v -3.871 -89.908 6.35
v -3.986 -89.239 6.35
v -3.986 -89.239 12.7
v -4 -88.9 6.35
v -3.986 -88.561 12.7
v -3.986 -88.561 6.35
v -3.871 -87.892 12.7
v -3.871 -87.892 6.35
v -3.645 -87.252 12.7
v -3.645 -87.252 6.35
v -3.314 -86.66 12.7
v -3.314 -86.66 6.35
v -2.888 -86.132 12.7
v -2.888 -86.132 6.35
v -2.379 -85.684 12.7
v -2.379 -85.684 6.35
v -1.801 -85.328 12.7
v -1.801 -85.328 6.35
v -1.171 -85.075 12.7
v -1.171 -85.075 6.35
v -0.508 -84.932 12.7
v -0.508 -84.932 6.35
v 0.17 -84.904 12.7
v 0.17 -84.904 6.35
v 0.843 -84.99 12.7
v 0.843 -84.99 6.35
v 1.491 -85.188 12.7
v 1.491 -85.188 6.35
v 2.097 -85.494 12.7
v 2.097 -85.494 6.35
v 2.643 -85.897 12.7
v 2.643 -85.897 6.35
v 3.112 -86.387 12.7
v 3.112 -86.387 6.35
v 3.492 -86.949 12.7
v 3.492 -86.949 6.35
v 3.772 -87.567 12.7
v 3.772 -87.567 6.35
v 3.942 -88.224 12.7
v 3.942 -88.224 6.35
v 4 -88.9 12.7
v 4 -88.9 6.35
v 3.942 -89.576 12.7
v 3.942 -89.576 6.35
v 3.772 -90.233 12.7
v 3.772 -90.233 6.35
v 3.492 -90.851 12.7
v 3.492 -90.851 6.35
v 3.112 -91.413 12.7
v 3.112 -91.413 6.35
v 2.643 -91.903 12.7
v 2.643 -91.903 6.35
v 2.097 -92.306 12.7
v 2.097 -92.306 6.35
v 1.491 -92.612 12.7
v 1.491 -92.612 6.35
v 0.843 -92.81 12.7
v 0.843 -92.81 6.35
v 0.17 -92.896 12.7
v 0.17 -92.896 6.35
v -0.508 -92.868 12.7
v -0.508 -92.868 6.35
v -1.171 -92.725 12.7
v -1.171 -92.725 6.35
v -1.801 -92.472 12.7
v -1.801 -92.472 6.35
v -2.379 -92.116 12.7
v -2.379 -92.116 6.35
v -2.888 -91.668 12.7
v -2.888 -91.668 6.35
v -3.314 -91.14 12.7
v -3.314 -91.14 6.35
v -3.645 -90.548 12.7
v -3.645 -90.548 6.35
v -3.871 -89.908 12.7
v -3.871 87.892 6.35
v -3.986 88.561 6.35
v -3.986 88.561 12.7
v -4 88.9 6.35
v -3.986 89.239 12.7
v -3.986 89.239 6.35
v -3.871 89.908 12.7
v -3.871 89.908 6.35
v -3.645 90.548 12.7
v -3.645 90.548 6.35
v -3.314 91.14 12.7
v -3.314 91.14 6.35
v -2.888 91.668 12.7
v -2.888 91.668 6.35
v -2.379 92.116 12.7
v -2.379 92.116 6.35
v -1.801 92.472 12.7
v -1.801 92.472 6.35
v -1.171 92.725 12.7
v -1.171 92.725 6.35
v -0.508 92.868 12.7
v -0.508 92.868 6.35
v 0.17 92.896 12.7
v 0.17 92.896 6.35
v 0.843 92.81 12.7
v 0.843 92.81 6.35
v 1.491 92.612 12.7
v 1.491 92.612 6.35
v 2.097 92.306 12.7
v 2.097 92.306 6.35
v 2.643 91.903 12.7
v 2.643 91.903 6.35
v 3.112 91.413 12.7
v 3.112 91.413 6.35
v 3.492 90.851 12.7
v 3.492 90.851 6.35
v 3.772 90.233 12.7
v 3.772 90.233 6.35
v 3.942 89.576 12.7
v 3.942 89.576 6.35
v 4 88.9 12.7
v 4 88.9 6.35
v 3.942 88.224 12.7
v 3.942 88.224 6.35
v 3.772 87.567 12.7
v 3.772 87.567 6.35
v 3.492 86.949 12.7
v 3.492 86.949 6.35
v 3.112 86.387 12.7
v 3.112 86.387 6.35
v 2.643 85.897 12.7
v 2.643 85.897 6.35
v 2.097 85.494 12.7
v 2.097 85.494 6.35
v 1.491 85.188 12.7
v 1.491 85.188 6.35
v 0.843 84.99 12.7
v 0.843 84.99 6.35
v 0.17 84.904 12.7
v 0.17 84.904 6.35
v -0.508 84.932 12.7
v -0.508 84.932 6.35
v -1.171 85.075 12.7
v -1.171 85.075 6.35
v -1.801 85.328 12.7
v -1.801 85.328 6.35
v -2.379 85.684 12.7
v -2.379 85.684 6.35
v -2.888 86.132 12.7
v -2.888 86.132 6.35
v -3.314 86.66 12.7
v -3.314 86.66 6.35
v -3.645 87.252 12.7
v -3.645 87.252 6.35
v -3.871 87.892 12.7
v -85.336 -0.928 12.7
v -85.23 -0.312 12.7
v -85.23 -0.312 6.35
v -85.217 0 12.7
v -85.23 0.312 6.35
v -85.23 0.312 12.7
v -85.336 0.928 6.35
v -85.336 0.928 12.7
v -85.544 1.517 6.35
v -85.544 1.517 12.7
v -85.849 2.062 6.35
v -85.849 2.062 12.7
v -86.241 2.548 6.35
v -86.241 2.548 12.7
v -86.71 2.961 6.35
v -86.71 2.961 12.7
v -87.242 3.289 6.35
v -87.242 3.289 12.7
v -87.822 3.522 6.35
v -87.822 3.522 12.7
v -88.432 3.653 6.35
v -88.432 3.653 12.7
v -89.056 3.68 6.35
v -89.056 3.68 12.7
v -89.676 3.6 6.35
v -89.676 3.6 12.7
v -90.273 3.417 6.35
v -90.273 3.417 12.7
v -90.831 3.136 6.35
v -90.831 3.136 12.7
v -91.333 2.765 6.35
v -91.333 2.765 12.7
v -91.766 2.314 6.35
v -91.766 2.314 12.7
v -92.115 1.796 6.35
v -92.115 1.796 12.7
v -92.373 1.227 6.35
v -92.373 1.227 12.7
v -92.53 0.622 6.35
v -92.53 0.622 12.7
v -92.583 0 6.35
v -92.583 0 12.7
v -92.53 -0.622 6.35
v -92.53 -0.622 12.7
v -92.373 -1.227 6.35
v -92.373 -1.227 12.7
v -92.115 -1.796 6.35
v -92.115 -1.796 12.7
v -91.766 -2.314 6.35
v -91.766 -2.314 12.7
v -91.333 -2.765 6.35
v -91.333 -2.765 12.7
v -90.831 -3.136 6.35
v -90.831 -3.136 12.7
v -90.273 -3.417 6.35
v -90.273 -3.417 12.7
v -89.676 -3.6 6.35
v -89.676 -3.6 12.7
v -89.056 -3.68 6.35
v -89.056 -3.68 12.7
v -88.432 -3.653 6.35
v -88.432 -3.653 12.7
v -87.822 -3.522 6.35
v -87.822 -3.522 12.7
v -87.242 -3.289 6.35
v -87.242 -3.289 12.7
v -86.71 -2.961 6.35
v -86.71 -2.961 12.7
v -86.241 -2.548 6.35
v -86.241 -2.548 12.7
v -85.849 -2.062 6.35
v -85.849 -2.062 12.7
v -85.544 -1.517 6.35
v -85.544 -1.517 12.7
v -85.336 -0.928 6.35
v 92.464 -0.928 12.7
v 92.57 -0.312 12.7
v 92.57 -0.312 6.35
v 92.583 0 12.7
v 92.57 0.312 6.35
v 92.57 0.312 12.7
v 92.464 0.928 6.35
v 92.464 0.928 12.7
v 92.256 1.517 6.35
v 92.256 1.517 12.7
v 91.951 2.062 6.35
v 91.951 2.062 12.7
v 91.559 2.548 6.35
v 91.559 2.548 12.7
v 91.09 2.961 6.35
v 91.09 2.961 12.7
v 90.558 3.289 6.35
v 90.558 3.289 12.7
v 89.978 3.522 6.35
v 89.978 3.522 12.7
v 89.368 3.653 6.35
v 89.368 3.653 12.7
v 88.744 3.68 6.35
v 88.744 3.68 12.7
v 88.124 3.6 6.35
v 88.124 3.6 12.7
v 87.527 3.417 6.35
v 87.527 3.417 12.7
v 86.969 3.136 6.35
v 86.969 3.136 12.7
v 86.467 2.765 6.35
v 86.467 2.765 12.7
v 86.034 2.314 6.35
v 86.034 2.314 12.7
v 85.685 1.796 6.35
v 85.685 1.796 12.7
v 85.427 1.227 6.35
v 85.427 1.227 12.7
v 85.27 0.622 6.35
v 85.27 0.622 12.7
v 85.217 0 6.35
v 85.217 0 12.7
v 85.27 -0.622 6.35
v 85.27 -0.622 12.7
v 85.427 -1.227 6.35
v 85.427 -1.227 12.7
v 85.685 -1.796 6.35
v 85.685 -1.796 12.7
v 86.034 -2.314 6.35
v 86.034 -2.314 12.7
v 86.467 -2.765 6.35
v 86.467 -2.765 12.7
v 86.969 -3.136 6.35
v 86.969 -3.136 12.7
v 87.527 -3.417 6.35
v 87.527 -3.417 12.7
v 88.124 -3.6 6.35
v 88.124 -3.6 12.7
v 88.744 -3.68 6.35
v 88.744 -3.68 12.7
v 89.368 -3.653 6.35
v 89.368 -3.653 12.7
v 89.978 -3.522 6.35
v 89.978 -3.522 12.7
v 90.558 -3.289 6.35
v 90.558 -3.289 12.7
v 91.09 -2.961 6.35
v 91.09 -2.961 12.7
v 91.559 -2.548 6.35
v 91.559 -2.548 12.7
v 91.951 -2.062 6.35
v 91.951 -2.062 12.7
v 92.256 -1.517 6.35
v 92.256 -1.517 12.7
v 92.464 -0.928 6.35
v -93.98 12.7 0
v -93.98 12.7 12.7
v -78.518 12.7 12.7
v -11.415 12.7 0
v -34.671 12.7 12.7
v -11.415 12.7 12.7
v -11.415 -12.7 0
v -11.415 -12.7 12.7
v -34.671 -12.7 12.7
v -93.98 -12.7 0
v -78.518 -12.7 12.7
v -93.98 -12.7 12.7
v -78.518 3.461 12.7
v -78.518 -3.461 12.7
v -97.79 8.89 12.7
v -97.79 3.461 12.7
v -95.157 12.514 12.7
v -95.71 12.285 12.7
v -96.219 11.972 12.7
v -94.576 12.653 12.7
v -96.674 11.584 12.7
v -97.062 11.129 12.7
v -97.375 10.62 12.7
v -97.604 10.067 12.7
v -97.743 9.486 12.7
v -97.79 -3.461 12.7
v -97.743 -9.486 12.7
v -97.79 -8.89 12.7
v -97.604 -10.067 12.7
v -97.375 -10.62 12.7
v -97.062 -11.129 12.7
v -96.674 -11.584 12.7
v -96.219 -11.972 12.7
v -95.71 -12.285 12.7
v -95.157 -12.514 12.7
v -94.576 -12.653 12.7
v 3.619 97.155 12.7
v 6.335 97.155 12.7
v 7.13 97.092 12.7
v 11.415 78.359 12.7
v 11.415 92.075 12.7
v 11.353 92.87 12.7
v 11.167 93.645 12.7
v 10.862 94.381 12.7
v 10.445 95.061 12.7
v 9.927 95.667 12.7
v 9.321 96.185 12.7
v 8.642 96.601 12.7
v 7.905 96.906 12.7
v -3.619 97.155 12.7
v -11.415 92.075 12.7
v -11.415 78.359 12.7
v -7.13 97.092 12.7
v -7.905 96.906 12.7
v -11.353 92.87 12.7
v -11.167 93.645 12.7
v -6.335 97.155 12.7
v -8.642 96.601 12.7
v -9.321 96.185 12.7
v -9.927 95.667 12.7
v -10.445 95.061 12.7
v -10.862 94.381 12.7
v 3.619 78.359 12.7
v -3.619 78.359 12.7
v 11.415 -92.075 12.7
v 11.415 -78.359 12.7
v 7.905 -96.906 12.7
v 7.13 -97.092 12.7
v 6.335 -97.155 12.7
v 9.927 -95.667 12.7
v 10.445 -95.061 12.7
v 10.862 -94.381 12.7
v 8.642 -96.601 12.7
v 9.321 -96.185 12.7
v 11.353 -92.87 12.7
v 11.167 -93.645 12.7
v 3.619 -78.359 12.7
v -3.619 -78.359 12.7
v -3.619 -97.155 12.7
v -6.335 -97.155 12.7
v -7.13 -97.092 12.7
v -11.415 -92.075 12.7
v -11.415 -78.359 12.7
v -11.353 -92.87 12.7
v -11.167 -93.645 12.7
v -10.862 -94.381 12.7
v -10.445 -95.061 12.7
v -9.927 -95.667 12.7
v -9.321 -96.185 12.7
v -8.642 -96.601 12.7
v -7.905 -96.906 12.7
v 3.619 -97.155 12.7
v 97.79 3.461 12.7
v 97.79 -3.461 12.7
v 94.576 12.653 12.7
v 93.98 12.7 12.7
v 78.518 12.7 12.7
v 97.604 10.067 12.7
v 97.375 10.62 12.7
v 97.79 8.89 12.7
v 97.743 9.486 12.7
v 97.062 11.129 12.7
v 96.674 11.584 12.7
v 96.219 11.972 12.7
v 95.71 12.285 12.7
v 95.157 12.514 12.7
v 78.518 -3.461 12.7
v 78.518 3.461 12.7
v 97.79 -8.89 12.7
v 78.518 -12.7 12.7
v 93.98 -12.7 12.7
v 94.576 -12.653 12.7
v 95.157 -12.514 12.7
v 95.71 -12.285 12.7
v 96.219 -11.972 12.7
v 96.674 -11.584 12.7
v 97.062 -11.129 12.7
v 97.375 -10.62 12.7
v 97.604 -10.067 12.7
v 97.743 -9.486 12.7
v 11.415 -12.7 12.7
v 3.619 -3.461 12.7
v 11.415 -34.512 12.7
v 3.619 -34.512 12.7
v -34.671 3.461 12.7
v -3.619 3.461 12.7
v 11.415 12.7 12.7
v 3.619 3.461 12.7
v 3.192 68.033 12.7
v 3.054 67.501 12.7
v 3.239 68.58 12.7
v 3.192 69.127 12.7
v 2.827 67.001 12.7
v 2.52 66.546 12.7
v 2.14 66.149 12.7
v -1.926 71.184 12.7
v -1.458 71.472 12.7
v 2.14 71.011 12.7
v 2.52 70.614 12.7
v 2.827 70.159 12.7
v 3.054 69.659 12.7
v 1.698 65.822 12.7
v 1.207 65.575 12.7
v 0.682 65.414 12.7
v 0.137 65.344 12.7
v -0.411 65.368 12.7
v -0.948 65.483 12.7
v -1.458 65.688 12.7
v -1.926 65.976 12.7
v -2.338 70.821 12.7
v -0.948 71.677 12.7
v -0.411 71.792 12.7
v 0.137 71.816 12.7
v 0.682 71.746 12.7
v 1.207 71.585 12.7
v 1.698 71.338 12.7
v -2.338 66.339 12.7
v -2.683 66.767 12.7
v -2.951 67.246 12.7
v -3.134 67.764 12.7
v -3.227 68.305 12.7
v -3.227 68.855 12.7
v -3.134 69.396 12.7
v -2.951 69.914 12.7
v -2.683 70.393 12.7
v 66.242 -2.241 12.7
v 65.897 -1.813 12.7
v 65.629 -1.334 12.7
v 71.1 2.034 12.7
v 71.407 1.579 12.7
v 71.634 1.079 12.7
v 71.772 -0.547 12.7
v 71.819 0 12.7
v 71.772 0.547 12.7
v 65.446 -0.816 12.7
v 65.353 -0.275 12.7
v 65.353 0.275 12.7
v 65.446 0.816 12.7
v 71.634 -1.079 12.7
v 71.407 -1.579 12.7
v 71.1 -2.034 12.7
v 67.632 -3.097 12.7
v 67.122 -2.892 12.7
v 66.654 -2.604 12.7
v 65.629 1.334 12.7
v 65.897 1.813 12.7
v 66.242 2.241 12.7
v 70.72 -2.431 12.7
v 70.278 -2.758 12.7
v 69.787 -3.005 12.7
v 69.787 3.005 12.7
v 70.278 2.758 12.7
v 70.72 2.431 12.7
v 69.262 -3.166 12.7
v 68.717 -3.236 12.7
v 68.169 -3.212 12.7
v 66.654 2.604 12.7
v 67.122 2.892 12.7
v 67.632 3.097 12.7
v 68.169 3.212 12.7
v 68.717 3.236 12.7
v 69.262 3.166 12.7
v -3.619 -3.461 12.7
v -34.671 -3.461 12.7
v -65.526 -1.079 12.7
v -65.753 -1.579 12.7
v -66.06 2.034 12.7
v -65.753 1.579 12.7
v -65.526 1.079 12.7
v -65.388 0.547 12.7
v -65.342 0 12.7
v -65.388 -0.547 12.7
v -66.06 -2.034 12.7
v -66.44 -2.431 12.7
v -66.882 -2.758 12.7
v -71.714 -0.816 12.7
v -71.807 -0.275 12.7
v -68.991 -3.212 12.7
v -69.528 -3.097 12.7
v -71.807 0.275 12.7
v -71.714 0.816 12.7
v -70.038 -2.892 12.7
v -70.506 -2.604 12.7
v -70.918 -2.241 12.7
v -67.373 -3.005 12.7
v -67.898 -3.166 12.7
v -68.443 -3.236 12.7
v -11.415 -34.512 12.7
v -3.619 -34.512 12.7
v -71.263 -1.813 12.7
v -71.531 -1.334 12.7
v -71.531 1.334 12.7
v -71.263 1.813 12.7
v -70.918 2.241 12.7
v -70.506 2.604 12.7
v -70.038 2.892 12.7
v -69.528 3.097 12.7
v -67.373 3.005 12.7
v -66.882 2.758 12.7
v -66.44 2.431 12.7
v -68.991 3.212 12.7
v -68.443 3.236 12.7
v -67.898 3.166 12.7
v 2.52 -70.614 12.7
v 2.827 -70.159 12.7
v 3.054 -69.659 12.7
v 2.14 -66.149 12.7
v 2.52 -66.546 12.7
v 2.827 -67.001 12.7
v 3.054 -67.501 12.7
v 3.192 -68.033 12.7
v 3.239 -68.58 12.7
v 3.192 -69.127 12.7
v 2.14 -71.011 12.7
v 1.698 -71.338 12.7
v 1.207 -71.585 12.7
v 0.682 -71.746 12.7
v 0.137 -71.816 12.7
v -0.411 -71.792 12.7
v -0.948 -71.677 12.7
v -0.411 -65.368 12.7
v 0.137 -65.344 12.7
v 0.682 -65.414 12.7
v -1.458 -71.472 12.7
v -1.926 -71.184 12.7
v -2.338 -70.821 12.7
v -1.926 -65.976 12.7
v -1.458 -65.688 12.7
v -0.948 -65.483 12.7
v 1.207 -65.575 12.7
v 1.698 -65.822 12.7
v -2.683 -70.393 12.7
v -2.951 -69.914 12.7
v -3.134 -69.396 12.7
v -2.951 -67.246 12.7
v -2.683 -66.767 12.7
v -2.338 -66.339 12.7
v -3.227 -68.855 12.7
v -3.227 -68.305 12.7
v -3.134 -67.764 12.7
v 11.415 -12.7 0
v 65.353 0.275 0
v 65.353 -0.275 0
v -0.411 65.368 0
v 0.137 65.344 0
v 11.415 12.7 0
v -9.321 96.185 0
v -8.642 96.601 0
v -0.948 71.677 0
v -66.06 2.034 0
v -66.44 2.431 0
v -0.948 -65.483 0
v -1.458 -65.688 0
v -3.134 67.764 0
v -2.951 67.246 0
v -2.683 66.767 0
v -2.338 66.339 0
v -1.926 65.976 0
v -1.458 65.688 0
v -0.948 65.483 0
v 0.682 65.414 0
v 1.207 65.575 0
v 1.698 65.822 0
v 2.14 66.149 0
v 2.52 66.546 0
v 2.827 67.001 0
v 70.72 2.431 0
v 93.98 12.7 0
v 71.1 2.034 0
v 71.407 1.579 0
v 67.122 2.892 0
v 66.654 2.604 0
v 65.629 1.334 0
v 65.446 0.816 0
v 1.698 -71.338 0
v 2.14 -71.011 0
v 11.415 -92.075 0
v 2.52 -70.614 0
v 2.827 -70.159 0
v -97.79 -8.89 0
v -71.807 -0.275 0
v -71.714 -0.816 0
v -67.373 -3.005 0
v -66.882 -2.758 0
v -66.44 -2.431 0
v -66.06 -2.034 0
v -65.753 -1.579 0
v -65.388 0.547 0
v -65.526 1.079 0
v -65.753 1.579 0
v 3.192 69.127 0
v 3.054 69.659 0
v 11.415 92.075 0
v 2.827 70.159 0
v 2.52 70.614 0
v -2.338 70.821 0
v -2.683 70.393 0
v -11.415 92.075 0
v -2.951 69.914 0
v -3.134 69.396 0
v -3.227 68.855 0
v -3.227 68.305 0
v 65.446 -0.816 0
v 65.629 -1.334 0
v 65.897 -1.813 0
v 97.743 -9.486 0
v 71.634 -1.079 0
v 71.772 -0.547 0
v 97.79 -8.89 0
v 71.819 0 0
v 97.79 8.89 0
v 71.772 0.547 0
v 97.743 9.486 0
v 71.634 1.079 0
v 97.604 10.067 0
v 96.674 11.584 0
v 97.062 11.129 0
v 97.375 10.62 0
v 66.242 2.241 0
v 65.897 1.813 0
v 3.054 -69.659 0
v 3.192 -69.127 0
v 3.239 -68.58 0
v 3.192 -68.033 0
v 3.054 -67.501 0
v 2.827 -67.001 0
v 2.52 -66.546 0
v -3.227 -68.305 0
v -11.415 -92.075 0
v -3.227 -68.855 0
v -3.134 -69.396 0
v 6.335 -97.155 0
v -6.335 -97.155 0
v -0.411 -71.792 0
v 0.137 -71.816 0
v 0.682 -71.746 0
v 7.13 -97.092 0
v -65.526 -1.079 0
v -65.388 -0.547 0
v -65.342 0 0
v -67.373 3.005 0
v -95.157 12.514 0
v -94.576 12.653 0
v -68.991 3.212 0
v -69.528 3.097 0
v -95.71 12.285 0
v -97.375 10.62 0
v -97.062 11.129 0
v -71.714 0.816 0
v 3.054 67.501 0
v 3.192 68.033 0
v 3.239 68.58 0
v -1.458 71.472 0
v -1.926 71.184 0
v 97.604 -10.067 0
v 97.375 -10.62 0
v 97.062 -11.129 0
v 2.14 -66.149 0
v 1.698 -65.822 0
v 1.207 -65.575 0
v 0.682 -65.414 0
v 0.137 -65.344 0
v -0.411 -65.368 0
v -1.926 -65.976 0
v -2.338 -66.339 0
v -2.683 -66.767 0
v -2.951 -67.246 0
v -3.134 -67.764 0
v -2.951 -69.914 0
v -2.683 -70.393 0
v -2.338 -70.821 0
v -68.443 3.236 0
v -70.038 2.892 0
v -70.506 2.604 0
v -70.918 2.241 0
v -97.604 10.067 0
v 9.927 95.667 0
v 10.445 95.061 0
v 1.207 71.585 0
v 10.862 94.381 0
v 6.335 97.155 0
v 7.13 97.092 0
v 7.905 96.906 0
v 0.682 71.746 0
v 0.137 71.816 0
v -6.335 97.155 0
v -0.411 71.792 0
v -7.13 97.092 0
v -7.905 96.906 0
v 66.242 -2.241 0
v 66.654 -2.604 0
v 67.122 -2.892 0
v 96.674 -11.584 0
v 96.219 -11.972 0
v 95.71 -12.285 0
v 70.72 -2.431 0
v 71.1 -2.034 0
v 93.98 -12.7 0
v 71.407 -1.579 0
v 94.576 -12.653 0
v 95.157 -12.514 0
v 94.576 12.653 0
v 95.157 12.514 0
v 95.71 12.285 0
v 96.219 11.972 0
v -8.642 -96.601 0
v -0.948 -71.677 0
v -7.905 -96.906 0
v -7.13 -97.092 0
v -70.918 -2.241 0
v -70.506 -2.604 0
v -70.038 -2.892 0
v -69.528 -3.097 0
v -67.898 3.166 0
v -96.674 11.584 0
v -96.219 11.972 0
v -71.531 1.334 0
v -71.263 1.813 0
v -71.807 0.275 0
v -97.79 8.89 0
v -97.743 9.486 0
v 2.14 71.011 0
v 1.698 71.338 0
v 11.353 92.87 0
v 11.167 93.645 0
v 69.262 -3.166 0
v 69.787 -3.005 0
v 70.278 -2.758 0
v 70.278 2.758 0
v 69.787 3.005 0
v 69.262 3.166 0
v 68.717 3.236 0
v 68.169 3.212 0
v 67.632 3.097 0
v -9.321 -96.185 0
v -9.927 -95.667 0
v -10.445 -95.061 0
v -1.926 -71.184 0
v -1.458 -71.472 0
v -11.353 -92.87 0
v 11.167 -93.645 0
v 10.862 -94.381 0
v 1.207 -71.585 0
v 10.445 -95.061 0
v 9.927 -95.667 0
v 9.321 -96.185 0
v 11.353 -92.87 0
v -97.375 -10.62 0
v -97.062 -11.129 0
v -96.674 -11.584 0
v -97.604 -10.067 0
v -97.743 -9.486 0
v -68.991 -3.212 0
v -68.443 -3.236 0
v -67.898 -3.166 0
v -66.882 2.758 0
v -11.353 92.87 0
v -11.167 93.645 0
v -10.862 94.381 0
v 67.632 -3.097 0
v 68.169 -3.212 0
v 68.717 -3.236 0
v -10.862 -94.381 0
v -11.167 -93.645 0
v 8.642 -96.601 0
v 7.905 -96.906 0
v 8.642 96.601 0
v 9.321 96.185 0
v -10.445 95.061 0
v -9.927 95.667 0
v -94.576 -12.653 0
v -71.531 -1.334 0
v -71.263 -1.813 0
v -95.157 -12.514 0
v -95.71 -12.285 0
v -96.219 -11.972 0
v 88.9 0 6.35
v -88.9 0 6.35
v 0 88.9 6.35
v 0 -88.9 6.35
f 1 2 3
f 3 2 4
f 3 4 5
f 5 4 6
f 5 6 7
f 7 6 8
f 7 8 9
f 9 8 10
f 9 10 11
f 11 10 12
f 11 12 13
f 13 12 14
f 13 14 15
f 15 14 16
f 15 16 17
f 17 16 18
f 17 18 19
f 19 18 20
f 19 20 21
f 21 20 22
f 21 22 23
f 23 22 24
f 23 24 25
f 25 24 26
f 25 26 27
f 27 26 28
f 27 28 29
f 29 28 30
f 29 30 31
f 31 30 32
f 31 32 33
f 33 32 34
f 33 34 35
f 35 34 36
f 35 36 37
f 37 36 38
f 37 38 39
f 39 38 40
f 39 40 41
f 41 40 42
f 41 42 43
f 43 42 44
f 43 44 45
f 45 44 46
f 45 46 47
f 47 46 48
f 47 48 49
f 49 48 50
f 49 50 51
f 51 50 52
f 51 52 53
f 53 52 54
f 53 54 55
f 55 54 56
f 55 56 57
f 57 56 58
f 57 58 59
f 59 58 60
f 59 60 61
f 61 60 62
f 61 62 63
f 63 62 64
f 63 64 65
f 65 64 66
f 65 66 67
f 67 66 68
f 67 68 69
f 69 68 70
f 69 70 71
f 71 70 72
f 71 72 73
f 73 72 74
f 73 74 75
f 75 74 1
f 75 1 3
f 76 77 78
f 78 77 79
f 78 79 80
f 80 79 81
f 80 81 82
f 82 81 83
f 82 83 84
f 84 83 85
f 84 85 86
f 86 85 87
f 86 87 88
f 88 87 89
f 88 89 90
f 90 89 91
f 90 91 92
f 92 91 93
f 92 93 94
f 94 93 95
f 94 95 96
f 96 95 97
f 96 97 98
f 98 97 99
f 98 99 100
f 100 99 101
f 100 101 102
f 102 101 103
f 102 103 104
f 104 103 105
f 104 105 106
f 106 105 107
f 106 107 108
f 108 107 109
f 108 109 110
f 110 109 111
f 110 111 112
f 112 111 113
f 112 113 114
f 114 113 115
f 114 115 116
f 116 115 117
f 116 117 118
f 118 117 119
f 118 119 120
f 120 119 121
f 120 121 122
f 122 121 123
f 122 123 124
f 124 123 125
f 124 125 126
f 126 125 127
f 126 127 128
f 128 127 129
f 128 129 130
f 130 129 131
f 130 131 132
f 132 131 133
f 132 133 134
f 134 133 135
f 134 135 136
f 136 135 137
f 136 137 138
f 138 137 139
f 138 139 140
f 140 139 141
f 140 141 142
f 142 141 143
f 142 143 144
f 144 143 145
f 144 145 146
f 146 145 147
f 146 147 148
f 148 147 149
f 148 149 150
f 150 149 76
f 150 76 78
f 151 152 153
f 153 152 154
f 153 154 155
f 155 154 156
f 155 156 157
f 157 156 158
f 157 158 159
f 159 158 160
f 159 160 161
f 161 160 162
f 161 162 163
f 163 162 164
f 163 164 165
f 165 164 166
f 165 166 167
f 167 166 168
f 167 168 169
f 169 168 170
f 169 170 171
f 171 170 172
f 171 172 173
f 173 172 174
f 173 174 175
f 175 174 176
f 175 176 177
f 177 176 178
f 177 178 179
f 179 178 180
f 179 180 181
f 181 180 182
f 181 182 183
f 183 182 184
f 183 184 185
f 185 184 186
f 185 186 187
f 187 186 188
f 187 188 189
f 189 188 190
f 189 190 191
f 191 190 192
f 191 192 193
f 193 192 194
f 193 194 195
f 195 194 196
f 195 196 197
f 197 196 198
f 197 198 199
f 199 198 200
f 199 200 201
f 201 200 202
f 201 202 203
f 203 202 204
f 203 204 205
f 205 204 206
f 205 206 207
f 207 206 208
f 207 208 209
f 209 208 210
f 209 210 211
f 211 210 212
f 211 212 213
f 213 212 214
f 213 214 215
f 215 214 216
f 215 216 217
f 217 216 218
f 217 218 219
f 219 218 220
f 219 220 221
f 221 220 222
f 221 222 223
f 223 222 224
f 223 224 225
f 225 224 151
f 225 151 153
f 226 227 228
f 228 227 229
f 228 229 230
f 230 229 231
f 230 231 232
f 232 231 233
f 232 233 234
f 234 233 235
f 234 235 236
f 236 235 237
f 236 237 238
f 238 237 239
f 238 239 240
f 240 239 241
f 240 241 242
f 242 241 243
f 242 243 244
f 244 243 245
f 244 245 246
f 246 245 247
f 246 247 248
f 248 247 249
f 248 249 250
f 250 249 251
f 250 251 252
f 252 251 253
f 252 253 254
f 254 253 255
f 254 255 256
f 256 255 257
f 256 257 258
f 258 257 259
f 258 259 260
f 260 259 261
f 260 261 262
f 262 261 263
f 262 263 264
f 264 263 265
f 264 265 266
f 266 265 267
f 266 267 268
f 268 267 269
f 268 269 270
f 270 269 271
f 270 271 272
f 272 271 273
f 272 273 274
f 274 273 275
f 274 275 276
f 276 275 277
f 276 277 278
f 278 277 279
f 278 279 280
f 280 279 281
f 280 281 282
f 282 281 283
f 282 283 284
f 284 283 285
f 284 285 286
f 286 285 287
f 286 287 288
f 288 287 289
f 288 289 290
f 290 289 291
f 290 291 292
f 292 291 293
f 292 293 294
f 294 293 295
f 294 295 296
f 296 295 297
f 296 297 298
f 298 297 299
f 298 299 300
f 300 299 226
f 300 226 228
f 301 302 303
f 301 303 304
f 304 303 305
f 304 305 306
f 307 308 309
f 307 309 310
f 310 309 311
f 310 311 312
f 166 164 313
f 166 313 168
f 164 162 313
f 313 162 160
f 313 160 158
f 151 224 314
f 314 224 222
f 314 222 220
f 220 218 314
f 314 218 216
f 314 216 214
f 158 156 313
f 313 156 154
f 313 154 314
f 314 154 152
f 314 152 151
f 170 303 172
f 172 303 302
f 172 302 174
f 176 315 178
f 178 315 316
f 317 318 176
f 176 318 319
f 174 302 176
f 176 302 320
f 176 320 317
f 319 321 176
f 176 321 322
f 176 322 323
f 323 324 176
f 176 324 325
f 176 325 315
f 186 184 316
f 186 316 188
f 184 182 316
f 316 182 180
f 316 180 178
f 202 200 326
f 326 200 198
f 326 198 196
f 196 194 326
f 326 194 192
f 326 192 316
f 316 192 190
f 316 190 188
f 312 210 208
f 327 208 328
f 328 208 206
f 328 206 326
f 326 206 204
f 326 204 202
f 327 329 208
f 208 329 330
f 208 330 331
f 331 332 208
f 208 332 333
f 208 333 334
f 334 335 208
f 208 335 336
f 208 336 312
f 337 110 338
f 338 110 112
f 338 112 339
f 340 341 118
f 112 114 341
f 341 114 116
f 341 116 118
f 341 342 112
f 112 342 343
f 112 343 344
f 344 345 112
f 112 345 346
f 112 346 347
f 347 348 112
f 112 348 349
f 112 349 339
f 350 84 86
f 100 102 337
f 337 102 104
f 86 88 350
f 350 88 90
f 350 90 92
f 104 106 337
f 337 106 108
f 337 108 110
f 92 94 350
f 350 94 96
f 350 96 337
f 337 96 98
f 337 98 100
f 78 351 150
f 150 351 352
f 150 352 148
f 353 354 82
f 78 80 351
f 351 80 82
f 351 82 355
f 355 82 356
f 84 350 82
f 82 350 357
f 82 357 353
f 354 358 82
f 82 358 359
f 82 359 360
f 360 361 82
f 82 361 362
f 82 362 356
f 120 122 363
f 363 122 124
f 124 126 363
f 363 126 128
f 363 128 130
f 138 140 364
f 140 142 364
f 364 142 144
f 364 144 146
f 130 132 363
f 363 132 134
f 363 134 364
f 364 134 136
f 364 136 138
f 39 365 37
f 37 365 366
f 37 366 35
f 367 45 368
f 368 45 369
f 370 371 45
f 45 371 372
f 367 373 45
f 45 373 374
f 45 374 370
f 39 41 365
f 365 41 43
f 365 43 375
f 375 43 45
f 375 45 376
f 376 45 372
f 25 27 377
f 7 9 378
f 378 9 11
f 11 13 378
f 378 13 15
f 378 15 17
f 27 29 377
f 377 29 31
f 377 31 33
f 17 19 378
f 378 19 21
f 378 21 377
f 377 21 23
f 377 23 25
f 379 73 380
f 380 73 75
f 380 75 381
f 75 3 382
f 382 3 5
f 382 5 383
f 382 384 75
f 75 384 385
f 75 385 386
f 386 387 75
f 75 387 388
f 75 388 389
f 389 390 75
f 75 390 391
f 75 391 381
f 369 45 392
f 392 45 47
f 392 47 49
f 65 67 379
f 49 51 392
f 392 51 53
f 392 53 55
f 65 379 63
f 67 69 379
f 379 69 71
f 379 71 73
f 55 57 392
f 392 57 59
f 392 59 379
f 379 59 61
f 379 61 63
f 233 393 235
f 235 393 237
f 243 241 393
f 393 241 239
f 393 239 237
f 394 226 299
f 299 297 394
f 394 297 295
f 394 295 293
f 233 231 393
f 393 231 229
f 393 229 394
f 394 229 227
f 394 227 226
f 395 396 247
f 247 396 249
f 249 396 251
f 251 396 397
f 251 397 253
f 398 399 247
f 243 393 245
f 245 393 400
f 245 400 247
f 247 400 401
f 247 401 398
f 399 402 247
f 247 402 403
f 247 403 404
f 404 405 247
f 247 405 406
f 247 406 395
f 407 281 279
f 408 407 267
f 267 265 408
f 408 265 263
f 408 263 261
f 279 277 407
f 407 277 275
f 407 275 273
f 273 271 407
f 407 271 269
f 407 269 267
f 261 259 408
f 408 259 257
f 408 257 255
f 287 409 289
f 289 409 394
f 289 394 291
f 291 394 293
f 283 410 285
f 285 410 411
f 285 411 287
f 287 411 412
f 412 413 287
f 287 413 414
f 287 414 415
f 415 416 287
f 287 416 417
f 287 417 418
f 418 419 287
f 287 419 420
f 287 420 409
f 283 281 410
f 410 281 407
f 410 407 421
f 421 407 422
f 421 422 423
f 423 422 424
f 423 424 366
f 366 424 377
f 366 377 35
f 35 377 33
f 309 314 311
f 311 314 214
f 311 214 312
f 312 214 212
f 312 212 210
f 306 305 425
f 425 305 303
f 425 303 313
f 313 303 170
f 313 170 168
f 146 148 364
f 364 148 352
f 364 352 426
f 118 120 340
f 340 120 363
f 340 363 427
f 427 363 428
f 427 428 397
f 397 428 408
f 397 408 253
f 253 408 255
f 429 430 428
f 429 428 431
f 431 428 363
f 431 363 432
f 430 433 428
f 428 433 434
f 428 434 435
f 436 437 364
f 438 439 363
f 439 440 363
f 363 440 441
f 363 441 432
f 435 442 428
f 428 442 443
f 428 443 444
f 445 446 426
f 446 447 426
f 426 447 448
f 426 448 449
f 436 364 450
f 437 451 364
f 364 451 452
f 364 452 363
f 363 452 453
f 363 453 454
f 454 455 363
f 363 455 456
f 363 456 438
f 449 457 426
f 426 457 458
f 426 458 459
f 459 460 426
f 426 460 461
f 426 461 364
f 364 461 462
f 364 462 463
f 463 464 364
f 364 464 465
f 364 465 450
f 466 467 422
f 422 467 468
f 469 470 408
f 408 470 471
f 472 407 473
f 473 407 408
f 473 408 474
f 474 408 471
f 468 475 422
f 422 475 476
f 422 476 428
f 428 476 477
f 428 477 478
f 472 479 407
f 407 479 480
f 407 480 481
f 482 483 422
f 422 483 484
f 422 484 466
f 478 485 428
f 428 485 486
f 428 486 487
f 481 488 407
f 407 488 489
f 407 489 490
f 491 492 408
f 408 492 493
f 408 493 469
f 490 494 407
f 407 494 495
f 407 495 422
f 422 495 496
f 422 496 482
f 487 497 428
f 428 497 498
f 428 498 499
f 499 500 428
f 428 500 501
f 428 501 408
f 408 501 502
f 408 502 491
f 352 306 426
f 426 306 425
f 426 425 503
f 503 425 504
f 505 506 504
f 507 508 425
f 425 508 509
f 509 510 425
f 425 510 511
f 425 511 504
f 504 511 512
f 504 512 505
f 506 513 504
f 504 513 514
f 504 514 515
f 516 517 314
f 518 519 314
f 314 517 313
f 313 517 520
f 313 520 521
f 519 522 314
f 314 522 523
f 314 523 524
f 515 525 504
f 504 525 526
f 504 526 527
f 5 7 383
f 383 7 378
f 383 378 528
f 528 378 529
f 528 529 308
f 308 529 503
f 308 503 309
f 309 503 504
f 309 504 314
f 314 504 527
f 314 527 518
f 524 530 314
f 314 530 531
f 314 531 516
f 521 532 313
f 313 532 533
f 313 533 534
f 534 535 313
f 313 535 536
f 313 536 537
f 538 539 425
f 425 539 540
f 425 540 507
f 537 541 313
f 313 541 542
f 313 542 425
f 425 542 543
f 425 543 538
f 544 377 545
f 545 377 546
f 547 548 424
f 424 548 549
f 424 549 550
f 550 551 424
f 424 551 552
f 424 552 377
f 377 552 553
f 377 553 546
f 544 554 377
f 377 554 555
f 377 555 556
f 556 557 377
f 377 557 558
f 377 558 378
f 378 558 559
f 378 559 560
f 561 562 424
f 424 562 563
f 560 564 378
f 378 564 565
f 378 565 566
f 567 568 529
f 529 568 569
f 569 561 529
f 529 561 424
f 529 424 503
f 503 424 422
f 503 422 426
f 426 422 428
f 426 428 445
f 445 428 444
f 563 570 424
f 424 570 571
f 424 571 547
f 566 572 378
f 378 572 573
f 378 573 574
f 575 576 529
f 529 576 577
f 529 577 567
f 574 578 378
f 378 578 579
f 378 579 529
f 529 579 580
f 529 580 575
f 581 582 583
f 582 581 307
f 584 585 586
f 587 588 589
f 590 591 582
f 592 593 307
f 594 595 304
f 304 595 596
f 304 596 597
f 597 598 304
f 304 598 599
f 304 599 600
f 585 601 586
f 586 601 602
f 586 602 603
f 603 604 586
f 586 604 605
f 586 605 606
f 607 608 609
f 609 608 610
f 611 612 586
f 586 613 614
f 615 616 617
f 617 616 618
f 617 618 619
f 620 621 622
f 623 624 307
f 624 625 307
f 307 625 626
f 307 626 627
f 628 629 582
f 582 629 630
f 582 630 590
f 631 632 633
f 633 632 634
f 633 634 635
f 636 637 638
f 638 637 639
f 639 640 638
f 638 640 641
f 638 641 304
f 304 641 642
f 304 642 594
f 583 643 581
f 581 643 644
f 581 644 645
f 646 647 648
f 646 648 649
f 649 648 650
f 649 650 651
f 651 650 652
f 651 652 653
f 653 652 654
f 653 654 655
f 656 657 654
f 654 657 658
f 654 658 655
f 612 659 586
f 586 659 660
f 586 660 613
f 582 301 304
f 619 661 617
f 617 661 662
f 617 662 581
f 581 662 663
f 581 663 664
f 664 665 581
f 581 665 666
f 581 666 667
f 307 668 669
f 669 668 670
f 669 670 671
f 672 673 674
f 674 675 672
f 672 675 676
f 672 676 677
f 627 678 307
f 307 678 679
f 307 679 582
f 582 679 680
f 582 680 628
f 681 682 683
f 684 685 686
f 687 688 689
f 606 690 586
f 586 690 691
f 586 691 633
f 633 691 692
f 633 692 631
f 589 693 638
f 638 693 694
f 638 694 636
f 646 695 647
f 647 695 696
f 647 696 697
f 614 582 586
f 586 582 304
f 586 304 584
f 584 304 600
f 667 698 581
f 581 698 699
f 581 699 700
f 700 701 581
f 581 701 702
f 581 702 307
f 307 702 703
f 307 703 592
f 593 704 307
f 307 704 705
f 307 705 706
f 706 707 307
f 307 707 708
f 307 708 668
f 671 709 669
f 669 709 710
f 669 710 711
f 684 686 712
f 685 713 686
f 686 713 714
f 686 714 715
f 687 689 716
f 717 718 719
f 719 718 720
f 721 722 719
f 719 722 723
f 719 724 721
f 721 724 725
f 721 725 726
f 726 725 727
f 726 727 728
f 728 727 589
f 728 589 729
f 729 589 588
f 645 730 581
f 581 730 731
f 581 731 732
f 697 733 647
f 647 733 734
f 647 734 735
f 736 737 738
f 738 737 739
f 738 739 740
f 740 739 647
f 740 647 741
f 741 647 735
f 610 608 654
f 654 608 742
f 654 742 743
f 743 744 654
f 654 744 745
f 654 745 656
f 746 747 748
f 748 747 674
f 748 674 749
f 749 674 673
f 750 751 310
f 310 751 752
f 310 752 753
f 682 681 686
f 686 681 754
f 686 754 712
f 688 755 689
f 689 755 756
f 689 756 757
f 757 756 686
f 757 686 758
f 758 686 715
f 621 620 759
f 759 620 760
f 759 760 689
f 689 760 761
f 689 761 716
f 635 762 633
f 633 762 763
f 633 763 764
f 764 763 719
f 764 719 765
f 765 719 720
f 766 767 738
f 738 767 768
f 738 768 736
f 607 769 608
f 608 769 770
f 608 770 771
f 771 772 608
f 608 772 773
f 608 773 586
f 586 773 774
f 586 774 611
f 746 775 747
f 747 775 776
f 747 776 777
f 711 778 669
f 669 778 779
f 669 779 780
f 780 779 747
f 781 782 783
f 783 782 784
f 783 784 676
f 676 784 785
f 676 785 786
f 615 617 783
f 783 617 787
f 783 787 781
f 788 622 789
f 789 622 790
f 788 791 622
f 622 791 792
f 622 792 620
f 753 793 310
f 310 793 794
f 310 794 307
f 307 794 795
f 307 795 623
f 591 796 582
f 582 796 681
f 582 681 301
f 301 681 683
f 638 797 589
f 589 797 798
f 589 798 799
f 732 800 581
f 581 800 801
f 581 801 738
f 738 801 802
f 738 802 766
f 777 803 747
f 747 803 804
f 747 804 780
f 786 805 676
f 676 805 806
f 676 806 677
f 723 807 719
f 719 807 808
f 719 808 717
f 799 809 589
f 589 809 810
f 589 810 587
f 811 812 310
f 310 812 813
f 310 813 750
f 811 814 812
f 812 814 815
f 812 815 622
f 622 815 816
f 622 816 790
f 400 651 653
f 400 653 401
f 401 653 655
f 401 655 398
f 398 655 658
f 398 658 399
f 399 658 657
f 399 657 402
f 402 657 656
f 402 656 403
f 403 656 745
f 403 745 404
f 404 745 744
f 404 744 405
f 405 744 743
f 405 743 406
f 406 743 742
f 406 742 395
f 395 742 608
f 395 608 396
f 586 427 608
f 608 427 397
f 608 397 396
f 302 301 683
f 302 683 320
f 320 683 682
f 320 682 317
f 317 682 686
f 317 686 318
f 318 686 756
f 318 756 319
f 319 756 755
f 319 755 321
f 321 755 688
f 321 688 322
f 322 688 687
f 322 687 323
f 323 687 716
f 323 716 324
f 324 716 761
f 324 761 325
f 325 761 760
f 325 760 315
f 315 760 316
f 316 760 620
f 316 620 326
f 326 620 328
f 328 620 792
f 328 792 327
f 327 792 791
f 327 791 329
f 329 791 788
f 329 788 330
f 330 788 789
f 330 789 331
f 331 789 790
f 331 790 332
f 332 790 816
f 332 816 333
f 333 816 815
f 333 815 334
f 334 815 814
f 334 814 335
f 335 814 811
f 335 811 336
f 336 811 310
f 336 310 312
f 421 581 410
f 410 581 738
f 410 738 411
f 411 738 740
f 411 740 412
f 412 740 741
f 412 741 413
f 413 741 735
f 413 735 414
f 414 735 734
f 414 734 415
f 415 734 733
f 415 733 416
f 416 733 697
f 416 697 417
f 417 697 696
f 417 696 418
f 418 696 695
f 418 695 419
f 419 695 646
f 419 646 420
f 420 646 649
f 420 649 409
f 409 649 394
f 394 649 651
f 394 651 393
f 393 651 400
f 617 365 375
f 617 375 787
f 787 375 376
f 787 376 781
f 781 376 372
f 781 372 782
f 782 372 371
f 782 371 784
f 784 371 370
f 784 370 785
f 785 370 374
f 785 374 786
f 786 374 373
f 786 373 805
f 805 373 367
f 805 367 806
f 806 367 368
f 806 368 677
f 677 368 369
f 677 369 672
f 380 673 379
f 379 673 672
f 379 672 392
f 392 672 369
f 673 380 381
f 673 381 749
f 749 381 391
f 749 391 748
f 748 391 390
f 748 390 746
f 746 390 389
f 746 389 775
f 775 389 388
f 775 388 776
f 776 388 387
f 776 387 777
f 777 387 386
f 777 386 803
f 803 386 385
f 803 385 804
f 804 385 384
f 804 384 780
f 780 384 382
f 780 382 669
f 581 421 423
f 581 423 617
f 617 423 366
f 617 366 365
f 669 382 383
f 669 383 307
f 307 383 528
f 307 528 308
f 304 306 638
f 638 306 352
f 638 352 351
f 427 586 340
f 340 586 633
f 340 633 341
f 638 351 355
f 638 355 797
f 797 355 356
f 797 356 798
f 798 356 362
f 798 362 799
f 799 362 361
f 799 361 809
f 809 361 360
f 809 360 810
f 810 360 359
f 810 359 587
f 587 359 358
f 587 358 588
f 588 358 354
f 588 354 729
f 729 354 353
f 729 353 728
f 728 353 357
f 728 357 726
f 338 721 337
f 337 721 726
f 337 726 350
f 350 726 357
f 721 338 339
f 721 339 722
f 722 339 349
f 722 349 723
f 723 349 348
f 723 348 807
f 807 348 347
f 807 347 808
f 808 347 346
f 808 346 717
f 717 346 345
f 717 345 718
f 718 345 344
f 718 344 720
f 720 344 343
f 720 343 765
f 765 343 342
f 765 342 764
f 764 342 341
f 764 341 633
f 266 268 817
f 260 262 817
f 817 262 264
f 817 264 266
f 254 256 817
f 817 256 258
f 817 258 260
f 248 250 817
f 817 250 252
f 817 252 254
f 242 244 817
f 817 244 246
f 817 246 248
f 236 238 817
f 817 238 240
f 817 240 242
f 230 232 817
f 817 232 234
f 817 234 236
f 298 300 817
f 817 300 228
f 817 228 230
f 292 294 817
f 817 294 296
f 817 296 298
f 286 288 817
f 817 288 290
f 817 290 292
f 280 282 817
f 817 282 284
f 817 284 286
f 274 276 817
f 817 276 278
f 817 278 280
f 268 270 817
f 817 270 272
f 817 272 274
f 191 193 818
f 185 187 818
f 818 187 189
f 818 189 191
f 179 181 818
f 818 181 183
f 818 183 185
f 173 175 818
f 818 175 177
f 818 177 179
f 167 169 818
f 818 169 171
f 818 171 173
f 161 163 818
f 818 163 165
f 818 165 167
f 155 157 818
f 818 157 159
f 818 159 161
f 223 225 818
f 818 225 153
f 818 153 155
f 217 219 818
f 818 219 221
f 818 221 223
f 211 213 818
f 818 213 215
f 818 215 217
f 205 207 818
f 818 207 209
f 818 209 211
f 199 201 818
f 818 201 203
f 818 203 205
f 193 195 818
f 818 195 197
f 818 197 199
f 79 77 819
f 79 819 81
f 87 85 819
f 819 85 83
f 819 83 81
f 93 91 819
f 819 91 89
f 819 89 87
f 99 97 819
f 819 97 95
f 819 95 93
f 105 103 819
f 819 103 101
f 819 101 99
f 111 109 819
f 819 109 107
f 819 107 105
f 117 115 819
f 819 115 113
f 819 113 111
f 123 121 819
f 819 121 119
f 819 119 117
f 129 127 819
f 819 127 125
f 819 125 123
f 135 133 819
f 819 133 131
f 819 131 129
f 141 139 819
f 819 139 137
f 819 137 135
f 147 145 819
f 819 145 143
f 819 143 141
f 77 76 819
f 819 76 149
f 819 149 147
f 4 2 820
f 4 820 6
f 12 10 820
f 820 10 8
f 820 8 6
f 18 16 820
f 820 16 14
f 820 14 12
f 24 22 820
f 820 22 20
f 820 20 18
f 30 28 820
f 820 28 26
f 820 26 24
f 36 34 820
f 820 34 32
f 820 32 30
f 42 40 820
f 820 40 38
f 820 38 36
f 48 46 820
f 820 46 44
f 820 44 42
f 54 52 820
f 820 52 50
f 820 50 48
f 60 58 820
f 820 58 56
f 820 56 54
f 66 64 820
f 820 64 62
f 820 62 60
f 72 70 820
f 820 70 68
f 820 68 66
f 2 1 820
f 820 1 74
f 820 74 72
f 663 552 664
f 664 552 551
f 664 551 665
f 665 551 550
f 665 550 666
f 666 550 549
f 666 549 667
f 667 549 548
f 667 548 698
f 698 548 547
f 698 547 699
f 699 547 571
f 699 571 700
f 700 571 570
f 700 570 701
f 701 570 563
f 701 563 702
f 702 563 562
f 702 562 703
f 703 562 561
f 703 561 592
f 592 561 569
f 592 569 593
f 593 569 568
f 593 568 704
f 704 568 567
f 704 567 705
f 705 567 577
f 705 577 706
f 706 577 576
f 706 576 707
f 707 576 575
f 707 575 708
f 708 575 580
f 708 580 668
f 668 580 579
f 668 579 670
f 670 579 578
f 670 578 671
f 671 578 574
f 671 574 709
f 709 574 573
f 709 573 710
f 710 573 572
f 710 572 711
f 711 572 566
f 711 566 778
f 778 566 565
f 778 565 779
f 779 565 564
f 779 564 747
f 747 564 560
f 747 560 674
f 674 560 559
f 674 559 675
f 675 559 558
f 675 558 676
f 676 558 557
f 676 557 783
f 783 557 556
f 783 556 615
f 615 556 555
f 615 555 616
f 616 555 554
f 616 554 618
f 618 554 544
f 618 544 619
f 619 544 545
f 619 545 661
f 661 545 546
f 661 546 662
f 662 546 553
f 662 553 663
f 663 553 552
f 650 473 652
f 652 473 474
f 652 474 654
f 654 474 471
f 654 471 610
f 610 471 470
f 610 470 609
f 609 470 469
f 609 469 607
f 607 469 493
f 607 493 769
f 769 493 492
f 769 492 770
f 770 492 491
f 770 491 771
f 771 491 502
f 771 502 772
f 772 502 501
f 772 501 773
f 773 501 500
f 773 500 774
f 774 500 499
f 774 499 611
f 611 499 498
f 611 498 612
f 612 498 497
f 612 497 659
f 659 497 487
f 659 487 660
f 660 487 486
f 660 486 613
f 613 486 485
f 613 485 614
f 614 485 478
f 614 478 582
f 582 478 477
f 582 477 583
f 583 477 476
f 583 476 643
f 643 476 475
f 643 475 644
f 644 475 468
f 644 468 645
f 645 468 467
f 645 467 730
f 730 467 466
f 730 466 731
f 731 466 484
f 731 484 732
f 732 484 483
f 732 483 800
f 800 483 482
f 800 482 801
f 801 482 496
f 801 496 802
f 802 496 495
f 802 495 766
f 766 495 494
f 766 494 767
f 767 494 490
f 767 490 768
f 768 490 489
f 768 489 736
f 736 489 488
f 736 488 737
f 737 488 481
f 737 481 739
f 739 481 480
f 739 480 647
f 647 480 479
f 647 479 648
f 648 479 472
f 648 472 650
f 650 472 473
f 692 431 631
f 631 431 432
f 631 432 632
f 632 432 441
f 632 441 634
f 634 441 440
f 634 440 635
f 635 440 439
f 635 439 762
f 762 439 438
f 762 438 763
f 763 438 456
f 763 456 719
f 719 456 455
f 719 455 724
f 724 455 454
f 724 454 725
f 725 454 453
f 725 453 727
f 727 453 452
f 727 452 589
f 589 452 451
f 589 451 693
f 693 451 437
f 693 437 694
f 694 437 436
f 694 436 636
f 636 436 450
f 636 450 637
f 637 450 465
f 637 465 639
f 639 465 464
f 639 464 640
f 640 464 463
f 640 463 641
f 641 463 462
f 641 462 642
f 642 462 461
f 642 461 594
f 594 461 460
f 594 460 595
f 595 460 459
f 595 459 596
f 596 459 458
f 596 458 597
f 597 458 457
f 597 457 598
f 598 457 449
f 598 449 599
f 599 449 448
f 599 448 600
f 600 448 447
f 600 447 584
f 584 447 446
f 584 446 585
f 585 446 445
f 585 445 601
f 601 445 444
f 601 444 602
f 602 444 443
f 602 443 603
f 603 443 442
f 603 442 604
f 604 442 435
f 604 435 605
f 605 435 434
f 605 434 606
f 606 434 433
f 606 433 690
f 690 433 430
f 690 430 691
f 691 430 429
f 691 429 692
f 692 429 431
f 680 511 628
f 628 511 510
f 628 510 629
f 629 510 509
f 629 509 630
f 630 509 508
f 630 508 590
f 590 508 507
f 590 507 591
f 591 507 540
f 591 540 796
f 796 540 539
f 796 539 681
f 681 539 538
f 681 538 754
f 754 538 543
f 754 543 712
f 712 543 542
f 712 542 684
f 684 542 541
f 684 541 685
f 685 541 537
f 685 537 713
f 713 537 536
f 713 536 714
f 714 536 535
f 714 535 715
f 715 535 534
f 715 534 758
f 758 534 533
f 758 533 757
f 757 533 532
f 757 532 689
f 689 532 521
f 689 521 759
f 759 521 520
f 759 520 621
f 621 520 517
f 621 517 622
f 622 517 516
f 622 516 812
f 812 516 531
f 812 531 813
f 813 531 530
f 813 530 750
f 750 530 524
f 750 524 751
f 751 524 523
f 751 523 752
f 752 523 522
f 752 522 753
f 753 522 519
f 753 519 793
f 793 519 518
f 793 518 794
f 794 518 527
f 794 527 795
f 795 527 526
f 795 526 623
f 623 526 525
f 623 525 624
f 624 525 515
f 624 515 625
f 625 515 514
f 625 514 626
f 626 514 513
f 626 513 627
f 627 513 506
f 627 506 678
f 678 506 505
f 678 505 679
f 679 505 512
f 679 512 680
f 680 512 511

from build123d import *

# Parameters (mm, degrees)
SKETCH1_R           = 3.683
BOSS_EXTRUDE1_DEPTH = 12.7
SKETCH3_R           = 4
BOSS_EXTRUDE3_DEPTH = 12.7
SKETCH2_R           = 3.683
SKETCH2_R_2         = 4
BOSS_EXTRUDE2_DEPTH = 6.35
SKETCH4_R           = 3.2385
CUT_EXTRUDE1_DEPTH  = 139.431456414


with BuildPart() as part:
    # Sketch1 → Boss-Extrude1 (new body)
    with BuildSketch(Plane.XY):
        with BuildLine():
            Line((93.98, -12.7), (-93.98, -12.7))
            ThreePointArc((-93.98, -12.7), (-96.674076836, -11.584076836), (-97.79, -8.89))
            Line((-97.79, -8.89), (-97.79, 8.89))
            ThreePointArc((-97.79, 8.89), (-96.674076836, 11.584076836), (-93.98, 12.7))
            Line((-93.98, 12.7), (93.98, 12.7))
            ThreePointArc((93.98, 12.7), (96.674076836, 11.584076836), (97.79, 8.89))
            Line((97.79, 8.89), (97.79, -8.89))
            ThreePointArc((97.79, -8.89), (96.674076836, -11.584076836), (93.98, -12.7))
        make_face()
        with Locations((-88.9, 0)):
            Circle(SKETCH1_R, mode=Mode.SUBTRACT)
        with Locations((88.9, 0)):
            Circle(SKETCH1_R, mode=Mode.SUBTRACT)
    extrude(amount=BOSS_EXTRUDE1_DEPTH)

    # Sketch3 → Boss-Extrude3 (add, through all)
    with BuildSketch(Plane.XY.offset(12.7)):
        with BuildLine():
            Line((-6.335384206, -97.155), (6.335384206, -97.155))
            ThreePointArc((6.335384206, -97.155), (9.927486654, -95.667102448), (11.415384206, -92.075))
            Line((11.415384206, -92.075), (11.415384206, 92.075))
            ThreePointArc((11.415384206, 92.075), (9.927486654, 95.667102448), (6.335384206, 97.155))
            Line((6.335384206, 97.155), (-6.335384206, 97.155))
            ThreePointArc((-6.335384206, 97.155), (-9.927486654, 95.667102448), (-11.415384206, 92.075))
            Line((-11.415384206, 92.075), (-11.415384206, -92.075))
            ThreePointArc((-11.415384206, -92.075), (-9.927486654, -95.667102448), (-6.335384206, -97.155))
        make_face()
        with Locations((0, 88.9)):
            Circle(SKETCH3_R, mode=Mode.SUBTRACT)
        with Locations((0, -88.9)):
            Circle(SKETCH3_R, mode=Mode.SUBTRACT)
    extrude(amount=-BOSS_EXTRUDE3_DEPTH)

    # Sketch2 → Boss-Extrude2 (add)
    with BuildSketch(Plane(origin=(0, 0, 0), x_dir=(-1, 0, 0), z_dir=(0, 0, -1))):
        with Locations((-88.9, 0)):
            Circle(SKETCH2_R)
        with Locations((88.9, 0)):
            Circle(SKETCH2_R)
        with Locations(Location((0, 88.9, 0), (0, 0, 180))):
            Circle(SKETCH2_R_2)
        with Locations(Location((0, -88.9, 0), (0, 0, 180))):
            Circle(SKETCH2_R_2)
    extrude(amount=-BOSS_EXTRUDE2_DEPTH)

    # Sketch4 → Cut-Extrude1 (cut, through all)
    with BuildSketch(Plane.XY.offset(12.7)):
        with Locations((-68.58, 0)):
            Circle(SKETCH4_R)
        with Locations((0, 68.58)):
            Circle(SKETCH4_R)
        with Locations((68.58, 0)):
            Circle(SKETCH4_R)
        with Locations((0, -68.58)):
            Circle(SKETCH4_R)
    extrude(amount=-CUT_EXTRUDE1_DEPTH, mode=Mode.SUBTRACT)


solid = part.part
